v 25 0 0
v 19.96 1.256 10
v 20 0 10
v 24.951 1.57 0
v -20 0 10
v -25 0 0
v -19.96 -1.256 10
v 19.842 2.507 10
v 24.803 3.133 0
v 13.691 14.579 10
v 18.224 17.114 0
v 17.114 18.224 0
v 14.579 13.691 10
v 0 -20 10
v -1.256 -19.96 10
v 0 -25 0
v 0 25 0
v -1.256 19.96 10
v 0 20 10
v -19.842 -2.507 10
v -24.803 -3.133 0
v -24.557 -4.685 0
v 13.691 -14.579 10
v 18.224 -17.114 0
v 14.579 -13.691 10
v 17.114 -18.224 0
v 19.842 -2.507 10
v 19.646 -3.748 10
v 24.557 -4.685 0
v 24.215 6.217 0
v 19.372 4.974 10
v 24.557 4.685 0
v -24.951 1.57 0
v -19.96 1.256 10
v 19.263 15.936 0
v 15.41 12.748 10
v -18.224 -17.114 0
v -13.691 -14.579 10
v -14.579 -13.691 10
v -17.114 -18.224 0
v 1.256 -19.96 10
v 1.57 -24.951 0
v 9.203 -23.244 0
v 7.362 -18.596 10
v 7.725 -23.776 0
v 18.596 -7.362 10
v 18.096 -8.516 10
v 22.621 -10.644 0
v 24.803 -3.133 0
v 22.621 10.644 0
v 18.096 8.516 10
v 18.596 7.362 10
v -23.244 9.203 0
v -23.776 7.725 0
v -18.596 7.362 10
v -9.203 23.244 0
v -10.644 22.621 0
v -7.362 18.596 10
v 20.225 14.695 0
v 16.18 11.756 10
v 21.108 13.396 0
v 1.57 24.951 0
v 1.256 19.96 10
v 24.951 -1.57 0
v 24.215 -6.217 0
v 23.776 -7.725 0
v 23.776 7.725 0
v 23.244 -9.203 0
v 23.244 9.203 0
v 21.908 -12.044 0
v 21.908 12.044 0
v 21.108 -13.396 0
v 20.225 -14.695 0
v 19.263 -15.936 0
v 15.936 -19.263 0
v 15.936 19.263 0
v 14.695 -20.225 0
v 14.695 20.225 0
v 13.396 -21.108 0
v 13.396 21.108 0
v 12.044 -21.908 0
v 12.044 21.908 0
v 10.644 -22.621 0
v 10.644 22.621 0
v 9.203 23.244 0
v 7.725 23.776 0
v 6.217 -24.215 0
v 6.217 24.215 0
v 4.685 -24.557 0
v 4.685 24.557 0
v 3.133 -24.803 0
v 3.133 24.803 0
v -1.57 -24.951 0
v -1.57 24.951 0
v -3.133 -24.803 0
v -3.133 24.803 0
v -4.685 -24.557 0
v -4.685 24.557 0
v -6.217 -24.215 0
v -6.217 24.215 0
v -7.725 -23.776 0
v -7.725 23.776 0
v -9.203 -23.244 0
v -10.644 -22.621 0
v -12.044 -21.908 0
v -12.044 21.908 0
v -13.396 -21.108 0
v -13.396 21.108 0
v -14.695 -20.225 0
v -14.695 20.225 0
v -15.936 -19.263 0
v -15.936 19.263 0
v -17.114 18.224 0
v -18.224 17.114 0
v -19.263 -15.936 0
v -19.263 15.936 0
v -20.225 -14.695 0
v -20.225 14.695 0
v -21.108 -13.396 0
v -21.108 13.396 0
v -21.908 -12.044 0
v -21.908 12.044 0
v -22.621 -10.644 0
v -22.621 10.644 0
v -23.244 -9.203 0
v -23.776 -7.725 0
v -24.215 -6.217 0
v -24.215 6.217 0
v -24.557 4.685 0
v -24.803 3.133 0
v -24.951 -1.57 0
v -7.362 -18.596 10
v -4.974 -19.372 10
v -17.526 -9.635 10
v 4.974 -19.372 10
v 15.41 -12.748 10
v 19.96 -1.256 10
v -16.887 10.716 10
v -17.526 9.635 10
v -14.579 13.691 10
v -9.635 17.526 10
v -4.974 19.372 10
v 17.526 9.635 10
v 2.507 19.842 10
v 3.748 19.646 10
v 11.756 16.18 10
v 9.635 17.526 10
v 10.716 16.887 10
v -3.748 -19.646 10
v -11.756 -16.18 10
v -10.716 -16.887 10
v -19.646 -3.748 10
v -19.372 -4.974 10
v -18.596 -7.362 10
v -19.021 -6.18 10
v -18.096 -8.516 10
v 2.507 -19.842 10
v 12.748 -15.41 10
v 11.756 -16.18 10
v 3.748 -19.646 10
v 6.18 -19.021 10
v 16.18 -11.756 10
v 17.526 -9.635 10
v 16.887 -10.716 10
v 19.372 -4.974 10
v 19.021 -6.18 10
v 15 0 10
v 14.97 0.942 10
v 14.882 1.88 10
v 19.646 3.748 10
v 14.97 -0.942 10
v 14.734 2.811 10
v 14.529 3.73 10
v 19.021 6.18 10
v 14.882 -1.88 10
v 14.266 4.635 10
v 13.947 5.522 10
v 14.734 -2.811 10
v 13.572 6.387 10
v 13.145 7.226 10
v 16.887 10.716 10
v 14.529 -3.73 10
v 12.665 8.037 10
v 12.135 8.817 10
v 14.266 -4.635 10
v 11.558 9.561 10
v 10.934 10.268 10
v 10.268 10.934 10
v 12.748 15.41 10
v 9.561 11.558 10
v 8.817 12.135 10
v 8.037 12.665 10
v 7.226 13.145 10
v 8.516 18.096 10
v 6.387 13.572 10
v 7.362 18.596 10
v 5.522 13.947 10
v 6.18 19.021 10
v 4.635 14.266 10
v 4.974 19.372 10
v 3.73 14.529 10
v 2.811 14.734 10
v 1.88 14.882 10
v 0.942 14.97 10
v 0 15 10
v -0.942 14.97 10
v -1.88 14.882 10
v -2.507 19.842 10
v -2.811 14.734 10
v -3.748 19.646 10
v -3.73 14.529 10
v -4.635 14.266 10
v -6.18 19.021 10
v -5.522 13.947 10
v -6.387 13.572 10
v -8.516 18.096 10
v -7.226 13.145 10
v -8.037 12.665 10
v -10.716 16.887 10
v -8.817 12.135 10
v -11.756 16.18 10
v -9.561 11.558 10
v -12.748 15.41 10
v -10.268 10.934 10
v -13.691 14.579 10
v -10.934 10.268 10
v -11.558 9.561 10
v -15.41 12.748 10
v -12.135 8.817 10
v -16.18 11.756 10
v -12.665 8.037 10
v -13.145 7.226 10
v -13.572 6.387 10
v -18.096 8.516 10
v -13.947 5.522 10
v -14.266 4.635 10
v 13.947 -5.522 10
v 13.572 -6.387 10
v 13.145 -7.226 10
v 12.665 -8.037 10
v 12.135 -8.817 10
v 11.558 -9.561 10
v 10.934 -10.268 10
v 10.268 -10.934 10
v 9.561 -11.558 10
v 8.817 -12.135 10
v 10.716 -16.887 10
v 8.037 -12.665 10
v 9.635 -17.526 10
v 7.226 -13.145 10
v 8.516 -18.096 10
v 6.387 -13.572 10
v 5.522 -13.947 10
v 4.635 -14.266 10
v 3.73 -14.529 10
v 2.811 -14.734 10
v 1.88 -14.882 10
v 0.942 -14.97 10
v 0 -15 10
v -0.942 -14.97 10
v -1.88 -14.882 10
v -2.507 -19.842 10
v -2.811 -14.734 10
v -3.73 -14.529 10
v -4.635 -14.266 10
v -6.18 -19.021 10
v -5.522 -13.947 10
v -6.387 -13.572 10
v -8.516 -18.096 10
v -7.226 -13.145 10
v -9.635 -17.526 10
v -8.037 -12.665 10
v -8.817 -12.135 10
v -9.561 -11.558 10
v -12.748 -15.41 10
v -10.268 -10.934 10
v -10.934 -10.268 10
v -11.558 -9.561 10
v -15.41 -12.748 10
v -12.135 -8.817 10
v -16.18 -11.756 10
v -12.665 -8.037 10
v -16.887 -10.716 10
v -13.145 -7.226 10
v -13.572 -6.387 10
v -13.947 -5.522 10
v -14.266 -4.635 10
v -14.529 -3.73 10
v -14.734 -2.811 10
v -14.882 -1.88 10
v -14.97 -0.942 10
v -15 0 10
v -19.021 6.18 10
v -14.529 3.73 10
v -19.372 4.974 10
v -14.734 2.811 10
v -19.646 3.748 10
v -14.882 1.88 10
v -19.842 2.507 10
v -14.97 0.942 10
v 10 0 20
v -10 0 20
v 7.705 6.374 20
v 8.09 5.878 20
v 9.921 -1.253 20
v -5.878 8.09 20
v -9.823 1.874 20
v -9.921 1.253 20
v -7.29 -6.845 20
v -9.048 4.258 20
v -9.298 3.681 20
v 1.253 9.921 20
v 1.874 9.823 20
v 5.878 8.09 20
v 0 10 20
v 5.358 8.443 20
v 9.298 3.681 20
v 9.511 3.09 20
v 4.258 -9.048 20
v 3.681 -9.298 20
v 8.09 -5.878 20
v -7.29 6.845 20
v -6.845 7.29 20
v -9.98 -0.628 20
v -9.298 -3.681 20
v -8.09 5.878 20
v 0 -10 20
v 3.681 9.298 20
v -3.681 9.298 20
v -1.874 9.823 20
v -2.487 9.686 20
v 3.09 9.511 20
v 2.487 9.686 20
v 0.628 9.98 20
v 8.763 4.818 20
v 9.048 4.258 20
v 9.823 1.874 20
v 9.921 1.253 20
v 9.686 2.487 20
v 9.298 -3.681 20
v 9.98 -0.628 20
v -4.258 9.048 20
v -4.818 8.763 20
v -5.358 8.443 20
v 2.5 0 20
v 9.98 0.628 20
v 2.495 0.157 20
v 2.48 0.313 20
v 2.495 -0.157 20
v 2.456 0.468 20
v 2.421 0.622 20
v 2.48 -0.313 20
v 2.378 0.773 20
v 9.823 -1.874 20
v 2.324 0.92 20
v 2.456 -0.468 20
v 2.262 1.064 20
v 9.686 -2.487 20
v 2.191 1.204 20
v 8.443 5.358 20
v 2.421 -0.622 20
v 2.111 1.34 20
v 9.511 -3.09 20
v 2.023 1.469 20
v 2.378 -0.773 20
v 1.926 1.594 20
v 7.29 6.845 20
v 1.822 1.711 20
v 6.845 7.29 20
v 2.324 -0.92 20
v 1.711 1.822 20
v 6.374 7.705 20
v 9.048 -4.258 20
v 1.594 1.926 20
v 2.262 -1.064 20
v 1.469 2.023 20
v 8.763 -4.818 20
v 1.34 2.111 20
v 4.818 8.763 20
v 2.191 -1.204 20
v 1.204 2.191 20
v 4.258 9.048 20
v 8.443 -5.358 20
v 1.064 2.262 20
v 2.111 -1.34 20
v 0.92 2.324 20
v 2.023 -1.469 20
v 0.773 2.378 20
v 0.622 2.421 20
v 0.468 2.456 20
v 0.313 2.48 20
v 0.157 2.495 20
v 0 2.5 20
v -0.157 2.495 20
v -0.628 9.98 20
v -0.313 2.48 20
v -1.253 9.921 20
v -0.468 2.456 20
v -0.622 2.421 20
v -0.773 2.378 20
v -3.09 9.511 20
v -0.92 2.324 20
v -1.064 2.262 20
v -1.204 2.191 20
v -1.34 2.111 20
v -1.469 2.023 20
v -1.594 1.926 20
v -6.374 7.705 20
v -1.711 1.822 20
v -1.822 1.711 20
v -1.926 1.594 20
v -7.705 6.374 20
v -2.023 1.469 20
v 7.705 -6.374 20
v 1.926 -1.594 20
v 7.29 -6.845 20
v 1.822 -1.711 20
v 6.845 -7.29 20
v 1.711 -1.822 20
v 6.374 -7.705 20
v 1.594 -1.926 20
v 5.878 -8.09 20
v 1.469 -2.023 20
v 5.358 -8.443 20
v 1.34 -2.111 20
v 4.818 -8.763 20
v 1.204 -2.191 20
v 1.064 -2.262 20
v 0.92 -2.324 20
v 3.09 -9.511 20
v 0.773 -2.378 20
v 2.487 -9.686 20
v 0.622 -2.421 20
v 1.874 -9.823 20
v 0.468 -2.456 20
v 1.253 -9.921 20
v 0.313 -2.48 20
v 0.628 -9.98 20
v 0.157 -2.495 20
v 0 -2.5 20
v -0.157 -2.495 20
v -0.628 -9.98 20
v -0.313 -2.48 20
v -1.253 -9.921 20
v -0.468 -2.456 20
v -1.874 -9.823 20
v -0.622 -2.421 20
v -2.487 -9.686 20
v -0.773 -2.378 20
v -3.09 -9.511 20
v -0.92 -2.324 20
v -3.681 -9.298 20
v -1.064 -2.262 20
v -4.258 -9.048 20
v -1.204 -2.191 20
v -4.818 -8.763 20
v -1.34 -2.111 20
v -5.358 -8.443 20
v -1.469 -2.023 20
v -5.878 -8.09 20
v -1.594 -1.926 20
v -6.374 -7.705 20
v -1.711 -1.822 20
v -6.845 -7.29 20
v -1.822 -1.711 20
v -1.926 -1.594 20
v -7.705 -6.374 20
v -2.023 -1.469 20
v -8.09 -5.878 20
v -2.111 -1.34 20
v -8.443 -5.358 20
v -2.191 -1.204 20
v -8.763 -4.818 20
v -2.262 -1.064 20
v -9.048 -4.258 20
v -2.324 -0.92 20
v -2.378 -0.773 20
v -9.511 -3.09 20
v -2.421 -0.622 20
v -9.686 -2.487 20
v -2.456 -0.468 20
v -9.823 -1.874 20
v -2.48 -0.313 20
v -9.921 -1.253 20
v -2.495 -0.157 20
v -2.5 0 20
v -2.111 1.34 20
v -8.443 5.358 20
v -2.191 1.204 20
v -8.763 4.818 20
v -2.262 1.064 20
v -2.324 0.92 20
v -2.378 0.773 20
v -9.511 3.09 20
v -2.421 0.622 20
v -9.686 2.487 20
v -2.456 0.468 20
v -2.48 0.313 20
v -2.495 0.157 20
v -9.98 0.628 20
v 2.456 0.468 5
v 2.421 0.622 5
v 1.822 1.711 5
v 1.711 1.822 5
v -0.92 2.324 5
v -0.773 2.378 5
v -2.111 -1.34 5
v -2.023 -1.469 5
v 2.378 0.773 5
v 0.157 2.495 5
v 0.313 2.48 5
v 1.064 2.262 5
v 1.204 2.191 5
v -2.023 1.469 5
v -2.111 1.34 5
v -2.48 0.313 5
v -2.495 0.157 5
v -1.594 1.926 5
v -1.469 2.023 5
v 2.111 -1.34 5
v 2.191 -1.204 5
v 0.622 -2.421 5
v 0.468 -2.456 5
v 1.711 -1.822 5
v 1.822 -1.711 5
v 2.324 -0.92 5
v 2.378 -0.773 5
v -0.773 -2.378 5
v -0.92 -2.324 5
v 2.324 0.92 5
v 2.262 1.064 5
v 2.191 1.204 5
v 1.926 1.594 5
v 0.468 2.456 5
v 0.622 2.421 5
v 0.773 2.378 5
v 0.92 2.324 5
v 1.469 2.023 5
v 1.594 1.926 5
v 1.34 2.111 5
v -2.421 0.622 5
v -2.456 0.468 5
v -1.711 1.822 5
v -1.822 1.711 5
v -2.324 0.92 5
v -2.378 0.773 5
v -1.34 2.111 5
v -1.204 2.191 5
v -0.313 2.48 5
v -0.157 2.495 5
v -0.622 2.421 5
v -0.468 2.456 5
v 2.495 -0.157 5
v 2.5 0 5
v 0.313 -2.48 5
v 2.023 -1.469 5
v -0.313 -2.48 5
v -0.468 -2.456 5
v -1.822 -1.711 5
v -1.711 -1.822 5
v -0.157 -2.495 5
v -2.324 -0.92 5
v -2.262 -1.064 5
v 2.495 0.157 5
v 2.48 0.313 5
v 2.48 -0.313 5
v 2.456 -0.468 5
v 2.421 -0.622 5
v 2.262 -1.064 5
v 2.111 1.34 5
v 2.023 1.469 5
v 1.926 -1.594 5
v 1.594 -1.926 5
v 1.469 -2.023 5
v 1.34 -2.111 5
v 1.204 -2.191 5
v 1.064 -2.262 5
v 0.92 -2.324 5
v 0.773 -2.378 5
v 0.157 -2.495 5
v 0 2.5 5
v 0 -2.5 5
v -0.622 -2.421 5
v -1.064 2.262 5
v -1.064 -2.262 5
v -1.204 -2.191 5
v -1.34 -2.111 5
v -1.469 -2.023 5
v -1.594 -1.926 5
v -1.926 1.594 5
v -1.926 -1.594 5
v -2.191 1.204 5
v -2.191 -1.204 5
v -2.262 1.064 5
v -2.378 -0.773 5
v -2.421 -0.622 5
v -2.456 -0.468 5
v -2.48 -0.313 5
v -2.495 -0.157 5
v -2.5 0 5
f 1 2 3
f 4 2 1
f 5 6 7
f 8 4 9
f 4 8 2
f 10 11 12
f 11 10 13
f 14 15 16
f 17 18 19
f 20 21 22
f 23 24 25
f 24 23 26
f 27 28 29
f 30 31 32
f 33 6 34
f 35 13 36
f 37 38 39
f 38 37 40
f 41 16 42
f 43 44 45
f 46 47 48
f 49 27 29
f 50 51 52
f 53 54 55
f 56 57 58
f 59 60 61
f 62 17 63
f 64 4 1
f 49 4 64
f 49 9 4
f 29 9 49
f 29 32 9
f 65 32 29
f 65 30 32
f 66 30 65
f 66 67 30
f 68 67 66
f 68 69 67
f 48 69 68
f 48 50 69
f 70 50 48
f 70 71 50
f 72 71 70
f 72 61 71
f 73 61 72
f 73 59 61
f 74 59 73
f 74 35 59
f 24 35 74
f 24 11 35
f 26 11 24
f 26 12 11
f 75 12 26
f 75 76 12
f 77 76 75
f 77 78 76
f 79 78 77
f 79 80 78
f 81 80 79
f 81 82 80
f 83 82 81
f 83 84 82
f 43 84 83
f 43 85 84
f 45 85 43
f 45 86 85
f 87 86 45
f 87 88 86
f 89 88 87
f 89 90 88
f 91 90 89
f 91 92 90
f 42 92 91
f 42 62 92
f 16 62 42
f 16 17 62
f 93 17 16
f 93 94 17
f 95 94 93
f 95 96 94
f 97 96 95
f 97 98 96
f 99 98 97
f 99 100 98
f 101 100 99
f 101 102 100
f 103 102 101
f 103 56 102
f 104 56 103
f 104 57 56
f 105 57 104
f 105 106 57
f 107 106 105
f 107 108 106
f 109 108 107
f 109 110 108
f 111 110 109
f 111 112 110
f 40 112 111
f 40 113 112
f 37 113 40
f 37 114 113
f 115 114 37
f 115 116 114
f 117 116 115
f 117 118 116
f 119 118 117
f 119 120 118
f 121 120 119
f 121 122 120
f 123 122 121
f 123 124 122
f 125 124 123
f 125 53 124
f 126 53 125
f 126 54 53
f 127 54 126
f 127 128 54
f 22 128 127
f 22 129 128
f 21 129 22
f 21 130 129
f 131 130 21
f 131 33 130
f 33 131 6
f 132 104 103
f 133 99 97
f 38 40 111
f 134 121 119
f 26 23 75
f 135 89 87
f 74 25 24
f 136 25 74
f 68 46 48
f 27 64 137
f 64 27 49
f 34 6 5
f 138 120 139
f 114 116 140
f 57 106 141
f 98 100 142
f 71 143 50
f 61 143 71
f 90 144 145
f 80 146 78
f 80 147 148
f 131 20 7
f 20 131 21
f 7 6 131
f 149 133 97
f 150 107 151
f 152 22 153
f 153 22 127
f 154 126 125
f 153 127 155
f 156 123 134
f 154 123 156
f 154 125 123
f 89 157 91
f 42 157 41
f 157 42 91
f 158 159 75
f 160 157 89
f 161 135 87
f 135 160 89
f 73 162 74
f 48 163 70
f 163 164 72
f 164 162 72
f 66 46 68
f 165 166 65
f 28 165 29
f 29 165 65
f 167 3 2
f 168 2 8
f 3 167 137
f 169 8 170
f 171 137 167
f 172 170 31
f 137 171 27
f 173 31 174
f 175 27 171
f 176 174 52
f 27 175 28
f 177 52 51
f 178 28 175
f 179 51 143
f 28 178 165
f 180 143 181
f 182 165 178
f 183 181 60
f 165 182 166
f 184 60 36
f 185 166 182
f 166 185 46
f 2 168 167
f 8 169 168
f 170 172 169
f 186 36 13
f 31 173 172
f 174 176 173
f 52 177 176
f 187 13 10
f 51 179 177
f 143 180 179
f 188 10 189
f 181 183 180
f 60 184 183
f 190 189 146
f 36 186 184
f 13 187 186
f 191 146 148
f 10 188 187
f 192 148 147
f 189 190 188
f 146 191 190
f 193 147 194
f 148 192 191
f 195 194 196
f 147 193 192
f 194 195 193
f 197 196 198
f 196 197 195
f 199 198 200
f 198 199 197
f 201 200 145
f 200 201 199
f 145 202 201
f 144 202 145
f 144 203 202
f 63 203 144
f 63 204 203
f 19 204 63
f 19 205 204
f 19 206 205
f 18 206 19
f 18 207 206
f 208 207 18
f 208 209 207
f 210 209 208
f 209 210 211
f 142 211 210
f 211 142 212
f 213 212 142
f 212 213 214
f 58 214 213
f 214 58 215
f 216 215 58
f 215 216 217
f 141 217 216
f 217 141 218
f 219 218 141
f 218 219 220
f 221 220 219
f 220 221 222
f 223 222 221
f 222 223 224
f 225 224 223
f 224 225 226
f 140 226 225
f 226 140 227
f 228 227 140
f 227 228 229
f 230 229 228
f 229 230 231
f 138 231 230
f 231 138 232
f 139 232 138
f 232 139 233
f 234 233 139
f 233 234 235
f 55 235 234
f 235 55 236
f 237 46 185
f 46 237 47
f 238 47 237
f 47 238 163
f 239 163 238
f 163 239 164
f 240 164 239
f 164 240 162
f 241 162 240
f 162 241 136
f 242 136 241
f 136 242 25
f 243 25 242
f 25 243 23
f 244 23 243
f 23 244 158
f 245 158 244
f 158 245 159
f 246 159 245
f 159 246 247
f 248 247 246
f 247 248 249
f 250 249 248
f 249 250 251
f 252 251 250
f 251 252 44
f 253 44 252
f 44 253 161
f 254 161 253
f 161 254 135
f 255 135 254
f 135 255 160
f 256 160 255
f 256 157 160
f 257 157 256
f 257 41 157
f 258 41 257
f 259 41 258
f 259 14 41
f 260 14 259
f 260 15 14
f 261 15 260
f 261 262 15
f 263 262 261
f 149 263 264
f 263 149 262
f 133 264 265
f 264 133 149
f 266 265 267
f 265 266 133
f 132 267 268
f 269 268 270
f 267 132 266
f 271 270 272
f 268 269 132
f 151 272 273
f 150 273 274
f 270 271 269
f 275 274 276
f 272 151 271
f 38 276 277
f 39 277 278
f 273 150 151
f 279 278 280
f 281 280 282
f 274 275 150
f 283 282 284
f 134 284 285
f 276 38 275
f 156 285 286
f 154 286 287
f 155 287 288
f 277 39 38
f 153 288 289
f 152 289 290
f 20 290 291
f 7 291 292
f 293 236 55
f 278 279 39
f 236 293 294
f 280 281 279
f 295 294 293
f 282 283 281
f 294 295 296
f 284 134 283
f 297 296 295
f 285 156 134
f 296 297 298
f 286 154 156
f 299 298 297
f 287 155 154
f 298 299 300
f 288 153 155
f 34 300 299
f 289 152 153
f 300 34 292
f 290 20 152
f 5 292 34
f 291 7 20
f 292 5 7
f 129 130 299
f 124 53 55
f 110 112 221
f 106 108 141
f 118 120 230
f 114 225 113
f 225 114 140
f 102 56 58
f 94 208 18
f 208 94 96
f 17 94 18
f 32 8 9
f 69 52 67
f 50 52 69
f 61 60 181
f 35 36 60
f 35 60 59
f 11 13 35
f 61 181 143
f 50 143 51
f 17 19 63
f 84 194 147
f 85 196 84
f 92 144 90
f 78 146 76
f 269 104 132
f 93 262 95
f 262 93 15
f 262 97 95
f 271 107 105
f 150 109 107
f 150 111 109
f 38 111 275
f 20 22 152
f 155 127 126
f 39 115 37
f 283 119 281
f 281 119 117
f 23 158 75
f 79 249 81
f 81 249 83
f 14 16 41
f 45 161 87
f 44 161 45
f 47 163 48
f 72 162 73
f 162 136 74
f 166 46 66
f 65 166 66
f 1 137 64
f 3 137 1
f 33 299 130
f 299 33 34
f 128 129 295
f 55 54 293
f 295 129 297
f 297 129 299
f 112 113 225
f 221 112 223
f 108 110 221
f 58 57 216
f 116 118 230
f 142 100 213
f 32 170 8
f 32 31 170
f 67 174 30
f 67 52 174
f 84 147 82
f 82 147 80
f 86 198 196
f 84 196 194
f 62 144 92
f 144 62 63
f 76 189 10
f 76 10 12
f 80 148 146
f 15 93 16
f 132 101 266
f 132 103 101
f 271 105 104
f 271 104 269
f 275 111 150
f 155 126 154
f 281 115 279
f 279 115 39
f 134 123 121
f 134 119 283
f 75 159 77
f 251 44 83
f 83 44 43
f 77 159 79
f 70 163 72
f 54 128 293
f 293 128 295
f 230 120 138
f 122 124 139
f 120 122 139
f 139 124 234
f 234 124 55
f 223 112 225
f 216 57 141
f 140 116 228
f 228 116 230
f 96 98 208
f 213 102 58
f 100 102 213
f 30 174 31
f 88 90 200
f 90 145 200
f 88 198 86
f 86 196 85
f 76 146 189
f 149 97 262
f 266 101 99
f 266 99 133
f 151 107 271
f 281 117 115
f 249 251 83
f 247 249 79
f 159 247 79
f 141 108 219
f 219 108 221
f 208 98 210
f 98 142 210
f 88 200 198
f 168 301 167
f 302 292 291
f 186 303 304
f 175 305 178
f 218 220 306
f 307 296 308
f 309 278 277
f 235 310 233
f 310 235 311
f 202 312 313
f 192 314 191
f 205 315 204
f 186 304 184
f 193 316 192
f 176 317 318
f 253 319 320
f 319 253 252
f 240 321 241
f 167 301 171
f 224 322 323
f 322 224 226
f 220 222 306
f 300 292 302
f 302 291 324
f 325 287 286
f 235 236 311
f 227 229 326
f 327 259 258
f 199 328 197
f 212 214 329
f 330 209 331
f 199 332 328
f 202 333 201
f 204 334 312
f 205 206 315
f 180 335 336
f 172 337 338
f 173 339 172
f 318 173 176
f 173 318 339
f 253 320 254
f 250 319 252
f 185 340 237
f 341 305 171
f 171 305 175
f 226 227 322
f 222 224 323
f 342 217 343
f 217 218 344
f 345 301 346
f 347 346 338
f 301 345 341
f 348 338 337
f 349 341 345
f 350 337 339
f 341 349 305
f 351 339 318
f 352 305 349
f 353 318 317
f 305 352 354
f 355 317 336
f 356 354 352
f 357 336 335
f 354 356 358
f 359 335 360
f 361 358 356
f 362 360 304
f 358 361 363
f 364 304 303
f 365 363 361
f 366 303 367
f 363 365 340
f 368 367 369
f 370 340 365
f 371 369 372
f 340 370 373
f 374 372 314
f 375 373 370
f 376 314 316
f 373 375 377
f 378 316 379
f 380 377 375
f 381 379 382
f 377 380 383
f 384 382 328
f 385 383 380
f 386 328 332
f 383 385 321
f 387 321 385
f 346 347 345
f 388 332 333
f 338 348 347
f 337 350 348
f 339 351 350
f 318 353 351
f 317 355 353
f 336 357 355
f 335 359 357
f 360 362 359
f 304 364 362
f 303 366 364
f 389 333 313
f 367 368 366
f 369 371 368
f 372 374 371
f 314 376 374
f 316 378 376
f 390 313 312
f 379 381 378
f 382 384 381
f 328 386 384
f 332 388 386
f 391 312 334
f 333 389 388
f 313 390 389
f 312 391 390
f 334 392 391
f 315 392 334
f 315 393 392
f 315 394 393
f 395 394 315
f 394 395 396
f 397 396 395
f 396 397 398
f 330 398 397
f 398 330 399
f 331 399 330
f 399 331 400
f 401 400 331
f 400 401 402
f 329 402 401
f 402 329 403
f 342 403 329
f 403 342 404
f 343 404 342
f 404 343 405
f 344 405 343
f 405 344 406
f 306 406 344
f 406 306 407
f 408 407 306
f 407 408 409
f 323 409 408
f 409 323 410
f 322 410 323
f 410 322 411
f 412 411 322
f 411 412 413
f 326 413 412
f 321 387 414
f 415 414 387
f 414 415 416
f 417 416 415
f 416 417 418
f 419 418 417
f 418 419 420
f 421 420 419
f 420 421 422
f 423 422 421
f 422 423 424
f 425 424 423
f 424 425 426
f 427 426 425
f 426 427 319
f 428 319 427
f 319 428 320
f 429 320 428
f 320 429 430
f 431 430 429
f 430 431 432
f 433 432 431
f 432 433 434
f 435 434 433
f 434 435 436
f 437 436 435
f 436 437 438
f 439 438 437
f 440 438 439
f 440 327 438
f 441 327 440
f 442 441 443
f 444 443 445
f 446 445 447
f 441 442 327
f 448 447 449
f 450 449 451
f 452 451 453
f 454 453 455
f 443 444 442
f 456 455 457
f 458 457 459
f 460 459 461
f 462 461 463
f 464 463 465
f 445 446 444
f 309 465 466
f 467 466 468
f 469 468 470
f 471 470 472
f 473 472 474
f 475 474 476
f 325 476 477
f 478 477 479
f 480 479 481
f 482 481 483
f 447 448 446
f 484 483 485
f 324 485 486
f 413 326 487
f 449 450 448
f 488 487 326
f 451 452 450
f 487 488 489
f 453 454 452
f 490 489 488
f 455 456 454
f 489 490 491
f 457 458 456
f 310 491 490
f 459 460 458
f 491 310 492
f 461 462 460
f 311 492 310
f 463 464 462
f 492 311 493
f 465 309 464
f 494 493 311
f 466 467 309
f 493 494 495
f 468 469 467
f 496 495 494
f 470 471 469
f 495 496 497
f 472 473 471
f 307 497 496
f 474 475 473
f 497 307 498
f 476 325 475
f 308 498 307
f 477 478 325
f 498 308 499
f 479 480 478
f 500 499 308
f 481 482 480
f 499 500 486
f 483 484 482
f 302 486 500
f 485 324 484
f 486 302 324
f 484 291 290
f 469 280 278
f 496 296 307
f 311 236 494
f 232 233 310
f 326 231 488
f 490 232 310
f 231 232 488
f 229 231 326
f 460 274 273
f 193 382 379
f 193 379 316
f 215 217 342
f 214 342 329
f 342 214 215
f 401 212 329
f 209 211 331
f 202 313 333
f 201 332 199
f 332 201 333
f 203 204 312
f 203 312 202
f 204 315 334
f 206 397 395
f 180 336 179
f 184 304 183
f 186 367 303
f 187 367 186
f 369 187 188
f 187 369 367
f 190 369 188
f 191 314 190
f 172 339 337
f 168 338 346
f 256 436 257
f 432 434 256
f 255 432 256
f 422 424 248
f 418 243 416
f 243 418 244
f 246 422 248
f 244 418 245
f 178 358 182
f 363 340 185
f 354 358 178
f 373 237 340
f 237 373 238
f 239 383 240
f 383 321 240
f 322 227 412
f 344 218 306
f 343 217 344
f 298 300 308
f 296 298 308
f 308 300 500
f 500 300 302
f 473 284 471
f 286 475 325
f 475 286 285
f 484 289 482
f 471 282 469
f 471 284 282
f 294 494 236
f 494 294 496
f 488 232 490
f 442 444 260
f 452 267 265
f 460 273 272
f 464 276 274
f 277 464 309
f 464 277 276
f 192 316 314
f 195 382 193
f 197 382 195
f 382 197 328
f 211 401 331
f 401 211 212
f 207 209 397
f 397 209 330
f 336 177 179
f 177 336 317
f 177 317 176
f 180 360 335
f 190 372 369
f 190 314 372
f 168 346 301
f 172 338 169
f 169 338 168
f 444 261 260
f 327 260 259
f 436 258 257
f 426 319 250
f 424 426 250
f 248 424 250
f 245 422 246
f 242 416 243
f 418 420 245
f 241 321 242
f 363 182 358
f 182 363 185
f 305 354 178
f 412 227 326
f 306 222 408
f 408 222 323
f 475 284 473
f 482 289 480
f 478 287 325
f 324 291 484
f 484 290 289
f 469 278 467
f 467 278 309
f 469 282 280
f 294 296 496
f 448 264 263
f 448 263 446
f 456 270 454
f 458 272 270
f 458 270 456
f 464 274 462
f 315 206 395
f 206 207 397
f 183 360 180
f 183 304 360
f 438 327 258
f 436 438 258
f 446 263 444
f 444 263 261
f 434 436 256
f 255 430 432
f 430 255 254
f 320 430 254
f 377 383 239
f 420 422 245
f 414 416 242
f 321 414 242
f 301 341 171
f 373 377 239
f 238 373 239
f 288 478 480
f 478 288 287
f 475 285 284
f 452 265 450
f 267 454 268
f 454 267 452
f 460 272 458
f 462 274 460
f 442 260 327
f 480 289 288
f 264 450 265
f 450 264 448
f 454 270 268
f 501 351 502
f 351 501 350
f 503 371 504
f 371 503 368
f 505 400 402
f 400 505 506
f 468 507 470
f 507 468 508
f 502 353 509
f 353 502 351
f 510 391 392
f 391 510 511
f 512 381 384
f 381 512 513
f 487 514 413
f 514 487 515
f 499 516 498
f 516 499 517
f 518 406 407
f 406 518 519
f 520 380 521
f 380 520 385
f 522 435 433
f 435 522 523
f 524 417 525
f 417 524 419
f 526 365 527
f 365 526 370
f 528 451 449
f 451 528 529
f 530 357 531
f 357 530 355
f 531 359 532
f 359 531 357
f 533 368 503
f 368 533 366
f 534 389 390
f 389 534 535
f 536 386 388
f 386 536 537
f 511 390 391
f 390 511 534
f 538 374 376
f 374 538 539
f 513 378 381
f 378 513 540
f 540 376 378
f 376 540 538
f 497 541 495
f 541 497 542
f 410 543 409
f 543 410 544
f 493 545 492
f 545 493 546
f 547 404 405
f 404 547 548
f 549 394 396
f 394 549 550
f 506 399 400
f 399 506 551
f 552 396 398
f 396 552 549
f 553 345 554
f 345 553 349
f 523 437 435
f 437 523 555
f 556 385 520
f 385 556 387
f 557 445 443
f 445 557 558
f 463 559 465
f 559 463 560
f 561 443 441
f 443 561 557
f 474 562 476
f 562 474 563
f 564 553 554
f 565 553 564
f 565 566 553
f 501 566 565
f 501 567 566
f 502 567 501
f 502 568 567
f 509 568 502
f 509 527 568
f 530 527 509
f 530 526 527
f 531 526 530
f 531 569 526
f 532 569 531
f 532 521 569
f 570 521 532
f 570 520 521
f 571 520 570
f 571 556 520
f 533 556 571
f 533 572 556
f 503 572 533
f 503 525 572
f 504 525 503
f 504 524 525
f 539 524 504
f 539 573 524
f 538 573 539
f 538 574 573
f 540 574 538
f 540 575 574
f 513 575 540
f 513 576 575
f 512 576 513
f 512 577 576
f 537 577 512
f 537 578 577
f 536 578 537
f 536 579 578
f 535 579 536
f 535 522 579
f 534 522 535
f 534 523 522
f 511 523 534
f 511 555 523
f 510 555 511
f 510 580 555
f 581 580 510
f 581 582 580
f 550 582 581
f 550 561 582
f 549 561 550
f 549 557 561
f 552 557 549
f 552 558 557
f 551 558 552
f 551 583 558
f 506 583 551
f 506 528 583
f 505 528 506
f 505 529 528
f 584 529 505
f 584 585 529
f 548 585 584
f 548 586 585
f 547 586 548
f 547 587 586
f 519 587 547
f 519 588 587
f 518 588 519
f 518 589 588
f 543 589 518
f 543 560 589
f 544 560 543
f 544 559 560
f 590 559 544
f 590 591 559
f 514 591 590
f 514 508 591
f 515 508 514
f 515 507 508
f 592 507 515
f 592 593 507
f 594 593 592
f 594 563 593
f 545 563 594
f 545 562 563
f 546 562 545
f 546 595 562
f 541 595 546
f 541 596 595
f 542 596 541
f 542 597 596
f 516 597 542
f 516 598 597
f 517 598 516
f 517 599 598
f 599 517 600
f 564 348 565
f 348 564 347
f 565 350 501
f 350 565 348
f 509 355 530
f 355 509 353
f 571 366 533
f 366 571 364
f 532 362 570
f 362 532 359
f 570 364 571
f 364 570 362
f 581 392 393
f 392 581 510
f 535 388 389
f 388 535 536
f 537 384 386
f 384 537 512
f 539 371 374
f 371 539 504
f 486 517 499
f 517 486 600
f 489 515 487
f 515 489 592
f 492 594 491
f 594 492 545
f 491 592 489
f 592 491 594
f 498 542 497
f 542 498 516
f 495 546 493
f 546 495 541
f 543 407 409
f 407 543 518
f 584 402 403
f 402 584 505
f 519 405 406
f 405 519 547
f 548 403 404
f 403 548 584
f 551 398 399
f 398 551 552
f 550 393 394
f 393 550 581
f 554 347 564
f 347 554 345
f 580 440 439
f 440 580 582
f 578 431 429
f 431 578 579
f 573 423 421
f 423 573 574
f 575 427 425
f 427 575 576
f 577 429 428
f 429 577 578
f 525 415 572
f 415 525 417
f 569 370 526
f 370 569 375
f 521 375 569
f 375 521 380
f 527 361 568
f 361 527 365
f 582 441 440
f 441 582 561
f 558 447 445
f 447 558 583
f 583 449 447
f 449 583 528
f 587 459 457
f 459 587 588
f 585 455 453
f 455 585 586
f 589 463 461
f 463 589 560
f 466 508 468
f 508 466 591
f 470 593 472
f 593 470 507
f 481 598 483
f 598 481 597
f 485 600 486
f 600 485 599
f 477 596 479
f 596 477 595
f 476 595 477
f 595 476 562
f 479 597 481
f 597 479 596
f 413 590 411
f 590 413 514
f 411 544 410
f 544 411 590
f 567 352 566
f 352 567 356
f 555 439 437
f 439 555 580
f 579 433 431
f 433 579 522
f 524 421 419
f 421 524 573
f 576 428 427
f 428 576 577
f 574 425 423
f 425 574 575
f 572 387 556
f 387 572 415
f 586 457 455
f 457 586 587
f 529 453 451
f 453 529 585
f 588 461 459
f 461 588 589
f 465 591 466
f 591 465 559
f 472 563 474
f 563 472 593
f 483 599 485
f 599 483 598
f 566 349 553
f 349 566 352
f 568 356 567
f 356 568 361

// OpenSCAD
$fn=100;
difference(){
    union(){
        translate([0,0,0])cylinder(r1=25,r2=20,h=10);
        translate([0,0,10])cylinder(r1=15,r2=10,h=10);
    }
    translate([0,0,5])cylinder(r1=2.5,r2=2.5,h=20);
}
